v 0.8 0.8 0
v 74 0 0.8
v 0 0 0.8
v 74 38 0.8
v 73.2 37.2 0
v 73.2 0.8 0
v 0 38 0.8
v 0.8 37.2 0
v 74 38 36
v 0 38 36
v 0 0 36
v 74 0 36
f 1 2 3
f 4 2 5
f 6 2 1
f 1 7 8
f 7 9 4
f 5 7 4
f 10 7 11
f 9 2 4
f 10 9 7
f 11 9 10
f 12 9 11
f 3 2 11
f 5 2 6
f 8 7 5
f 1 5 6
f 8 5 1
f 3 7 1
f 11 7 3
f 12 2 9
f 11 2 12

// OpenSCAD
// ============================================================
// Sesame Custom Block — Parametric design for FDM printing (no supports)
// ============================================================

// === PARAMETERS ===

/* [Main Dimensions] */
body_width  = 74;       // [10:200] Width (X) in mm
body_depth  = 38;       // [10:200] Depth (Y) in mm
body_height = 36;       // [10:200] Height (Z) in mm

/* [Print Settings] */
chamfer = 0.8;          // [0:0.1:2.0] Bottom chamfer for elephant foot

/* [Resolution] */
$fn = $preview ? 32 : 96;

/* [Hidden] */
epsilon = 0.01;

// === MODULES ===
module block() {
    if (chamfer > 0) {
        hull() {
            translate([chamfer, chamfer, 0])
                cube([body_width - 2*chamfer, body_depth - 2*chamfer, body_height]);
            translate([0, 0, chamfer])
                cube([body_width, body_depth, body_height - chamfer]);
        }
    } else {
        cube([body_width, body_depth, body_height]);
    }
}

module assembly() {
    block();
}

// === RENDER ===
assembly();
